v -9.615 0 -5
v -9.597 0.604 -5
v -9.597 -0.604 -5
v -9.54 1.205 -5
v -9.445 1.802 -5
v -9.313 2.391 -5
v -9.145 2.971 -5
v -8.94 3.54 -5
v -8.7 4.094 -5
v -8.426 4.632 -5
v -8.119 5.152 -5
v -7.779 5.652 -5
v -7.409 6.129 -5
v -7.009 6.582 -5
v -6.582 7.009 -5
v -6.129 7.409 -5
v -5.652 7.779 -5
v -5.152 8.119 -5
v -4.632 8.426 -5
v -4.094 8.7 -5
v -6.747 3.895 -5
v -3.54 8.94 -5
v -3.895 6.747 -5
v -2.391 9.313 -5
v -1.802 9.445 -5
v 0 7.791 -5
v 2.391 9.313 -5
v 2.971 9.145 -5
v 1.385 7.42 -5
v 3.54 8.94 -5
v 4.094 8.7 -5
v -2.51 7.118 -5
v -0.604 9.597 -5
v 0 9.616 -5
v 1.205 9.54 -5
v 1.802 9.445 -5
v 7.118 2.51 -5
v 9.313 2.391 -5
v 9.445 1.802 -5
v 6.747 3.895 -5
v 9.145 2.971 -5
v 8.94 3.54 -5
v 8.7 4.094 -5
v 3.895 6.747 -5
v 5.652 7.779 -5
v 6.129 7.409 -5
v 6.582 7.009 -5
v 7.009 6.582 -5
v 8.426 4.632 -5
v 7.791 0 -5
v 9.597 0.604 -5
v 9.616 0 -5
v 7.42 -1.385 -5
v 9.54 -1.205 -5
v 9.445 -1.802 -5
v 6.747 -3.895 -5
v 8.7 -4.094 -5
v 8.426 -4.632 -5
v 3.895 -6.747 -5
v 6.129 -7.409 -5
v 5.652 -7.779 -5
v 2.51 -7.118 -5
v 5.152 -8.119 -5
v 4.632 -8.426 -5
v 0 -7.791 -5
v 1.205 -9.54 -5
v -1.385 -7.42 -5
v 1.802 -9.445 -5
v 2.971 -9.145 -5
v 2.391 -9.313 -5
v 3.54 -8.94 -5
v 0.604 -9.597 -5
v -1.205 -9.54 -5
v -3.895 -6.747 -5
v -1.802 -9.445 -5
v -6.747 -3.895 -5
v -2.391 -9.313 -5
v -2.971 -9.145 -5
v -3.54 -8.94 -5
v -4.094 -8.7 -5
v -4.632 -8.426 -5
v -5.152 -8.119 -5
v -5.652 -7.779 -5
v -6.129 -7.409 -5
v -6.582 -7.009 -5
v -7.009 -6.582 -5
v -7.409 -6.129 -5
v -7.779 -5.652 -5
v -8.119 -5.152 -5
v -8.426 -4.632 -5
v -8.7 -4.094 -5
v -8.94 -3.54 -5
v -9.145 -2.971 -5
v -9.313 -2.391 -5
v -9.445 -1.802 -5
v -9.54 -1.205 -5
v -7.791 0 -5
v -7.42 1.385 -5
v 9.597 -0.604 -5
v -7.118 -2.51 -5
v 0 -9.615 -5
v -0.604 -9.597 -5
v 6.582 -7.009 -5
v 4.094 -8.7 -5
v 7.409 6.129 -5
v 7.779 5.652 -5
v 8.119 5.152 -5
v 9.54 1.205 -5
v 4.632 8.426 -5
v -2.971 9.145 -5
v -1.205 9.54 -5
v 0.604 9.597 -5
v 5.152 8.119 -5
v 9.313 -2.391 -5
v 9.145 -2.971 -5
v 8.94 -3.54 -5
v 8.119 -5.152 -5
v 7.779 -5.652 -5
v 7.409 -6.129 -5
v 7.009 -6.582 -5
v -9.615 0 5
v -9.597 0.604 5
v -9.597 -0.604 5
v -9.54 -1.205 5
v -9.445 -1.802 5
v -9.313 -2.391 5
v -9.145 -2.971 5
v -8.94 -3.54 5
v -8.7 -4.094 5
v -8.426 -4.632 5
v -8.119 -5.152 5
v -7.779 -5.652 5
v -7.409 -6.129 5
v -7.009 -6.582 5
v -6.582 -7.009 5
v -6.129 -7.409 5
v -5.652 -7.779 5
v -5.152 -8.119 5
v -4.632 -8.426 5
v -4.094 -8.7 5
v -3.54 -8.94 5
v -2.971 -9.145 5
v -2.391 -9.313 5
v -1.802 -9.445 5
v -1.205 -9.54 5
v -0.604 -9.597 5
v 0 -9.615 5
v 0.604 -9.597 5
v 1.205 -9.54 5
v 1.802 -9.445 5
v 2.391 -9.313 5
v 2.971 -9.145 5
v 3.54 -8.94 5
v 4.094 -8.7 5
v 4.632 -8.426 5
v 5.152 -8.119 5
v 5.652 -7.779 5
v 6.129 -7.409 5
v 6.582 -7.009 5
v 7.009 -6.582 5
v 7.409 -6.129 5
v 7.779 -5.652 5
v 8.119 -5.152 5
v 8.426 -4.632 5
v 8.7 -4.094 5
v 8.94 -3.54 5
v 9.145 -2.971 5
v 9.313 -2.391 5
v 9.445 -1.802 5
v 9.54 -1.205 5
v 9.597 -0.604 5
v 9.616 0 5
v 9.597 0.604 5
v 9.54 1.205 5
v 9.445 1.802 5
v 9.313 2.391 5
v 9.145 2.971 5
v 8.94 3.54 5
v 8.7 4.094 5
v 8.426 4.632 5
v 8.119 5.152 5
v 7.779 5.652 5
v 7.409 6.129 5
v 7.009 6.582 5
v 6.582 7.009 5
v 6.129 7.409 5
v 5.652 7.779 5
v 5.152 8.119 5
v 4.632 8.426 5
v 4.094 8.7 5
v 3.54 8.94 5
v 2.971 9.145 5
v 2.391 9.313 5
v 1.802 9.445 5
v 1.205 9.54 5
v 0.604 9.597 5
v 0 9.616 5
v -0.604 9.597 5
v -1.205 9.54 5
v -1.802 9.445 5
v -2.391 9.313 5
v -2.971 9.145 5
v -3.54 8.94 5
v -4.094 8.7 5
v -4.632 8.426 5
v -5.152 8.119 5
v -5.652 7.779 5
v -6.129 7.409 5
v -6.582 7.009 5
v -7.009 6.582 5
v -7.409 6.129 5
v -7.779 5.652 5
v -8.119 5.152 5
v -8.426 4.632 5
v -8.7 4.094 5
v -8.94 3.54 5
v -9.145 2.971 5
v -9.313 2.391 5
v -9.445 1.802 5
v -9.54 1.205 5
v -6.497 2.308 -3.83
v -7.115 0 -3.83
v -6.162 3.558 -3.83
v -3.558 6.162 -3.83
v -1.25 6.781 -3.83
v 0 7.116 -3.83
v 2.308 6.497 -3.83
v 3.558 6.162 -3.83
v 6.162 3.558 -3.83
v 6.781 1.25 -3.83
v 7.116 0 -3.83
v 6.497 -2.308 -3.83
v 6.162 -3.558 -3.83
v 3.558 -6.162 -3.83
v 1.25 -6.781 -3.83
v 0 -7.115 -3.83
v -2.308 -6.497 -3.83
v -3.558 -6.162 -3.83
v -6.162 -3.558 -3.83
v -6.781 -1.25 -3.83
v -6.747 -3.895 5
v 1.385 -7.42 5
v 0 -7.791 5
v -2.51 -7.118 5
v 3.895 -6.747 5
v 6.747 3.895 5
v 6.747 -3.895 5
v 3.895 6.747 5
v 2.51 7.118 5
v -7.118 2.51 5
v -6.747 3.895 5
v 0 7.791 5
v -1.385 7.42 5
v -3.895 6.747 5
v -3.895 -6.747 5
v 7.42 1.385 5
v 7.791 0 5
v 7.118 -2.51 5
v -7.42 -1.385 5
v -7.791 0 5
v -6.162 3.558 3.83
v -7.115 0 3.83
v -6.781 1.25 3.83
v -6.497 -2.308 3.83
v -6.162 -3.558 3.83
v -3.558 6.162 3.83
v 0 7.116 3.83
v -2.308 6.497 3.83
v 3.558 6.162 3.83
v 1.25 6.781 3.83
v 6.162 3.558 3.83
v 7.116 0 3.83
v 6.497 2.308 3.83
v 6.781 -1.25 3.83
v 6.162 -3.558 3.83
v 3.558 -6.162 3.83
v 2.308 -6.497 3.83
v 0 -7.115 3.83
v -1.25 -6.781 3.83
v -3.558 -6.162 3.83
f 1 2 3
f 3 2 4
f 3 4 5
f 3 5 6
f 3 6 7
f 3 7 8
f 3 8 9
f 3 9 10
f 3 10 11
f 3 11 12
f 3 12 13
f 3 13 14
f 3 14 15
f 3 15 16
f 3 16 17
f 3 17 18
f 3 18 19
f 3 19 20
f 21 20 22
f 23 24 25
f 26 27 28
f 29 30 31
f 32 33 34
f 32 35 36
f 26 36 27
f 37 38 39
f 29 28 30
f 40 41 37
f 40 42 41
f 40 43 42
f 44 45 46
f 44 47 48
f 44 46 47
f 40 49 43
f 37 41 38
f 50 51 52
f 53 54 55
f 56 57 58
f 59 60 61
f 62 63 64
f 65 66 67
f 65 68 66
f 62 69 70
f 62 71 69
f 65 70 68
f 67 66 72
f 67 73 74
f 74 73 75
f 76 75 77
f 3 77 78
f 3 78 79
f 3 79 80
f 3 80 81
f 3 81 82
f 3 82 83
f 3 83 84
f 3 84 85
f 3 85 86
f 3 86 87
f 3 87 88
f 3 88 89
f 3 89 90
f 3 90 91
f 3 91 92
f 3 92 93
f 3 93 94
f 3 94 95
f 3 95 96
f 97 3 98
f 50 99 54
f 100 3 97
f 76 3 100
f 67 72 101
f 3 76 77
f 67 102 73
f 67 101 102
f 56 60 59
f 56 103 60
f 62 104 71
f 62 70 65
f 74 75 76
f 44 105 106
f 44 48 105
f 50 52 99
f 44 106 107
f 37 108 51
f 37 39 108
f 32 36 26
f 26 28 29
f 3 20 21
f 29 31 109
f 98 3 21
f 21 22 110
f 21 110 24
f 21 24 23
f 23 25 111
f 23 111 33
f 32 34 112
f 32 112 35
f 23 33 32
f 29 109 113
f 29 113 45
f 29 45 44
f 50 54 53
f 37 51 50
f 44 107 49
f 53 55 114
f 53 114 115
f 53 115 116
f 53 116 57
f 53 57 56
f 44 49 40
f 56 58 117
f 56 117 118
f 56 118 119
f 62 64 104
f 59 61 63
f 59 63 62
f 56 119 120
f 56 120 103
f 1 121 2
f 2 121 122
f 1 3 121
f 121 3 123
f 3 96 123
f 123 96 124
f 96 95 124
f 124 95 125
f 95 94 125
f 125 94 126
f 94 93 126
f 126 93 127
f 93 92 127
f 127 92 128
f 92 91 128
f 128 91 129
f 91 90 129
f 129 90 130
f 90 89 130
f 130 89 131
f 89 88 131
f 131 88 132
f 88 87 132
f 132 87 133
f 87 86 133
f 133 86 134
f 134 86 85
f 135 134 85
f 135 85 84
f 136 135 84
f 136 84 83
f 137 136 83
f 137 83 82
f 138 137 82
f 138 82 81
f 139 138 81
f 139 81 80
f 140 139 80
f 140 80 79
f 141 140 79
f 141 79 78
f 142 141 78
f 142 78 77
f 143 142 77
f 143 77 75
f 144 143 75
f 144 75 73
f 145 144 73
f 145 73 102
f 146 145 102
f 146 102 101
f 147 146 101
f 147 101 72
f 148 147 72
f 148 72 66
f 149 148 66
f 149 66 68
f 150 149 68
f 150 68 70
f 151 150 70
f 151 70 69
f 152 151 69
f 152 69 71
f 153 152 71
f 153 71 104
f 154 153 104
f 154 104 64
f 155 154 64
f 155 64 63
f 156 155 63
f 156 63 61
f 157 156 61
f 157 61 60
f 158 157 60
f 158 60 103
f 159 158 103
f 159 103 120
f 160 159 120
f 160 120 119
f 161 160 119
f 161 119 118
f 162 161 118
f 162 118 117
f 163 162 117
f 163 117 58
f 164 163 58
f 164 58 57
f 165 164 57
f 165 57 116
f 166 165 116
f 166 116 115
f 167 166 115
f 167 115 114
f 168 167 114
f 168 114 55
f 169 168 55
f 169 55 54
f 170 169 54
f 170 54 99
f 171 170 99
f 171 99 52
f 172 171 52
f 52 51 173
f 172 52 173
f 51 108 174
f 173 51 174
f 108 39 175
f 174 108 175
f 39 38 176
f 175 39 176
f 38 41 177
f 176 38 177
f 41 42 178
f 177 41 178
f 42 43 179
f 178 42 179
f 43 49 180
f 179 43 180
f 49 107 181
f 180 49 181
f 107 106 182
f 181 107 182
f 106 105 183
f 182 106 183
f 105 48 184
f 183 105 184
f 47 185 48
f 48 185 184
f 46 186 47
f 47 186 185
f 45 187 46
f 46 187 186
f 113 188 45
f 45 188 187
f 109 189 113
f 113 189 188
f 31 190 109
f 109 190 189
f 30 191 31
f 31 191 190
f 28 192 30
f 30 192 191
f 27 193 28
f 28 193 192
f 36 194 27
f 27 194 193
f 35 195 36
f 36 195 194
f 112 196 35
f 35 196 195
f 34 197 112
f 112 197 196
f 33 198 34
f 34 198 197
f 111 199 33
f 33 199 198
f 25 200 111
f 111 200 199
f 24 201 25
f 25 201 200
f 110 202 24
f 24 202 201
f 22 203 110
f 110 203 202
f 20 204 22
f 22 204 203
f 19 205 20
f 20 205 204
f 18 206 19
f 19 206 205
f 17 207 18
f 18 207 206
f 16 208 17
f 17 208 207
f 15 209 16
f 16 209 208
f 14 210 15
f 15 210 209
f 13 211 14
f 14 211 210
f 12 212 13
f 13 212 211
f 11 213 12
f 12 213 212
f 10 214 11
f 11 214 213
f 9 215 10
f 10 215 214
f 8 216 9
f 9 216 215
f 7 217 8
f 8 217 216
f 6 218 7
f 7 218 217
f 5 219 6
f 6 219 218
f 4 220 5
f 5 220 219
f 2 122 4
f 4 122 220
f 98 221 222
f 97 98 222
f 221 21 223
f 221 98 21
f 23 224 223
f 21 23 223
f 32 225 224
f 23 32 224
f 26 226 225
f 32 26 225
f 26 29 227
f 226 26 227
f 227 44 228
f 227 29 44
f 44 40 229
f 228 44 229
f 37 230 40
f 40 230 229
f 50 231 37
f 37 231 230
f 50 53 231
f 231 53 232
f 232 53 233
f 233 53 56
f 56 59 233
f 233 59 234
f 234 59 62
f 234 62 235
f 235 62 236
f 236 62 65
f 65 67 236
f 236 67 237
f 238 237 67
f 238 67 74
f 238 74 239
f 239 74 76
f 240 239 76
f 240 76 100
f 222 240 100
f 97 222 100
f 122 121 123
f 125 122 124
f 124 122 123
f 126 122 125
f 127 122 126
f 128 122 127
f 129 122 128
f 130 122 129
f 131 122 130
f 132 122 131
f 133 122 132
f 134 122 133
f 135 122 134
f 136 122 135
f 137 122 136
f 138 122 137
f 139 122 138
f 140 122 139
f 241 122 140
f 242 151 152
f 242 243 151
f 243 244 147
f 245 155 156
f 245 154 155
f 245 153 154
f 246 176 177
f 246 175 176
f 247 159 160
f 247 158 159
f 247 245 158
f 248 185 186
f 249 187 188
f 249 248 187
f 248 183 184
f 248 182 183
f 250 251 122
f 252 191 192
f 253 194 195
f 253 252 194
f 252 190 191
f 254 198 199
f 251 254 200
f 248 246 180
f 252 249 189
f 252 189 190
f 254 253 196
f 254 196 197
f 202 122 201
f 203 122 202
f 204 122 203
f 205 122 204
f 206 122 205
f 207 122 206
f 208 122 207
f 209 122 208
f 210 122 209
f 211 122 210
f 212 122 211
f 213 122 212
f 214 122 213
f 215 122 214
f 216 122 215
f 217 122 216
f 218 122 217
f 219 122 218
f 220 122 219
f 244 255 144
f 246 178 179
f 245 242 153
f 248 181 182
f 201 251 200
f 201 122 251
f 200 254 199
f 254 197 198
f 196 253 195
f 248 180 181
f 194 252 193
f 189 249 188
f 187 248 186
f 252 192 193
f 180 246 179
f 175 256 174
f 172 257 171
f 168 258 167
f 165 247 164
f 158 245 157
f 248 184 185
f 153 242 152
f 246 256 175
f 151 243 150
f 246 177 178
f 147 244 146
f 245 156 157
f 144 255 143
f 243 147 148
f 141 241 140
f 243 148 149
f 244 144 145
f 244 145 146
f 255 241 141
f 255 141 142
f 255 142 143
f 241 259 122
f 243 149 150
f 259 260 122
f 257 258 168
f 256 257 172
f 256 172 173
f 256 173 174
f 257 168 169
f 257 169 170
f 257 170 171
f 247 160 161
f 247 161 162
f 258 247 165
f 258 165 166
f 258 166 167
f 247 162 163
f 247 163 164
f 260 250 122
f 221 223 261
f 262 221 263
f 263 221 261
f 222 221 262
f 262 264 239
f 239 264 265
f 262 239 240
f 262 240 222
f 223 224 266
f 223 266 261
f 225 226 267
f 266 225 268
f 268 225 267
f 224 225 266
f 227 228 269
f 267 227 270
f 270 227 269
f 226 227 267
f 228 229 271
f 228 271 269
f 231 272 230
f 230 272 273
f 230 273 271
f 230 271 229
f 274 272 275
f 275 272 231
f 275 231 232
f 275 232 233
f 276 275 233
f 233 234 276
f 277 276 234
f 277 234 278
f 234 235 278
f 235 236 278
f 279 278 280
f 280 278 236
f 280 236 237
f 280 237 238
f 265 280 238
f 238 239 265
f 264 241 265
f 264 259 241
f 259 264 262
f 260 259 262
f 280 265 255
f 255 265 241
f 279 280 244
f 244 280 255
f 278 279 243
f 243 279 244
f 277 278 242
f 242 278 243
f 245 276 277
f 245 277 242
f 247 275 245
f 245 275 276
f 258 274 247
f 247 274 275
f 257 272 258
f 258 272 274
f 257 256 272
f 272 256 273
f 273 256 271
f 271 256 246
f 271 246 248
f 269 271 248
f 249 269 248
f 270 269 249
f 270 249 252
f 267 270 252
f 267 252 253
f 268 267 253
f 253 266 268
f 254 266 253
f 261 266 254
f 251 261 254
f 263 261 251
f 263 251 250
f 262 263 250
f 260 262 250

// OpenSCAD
rod_diam = 13.3 * 1.07; // 1.07 == anti shrinkage
bearing_length = 10;

difference() {
  cylinder(r=(rod_diam/2) + 2.5, h=bearing_length, center=true, $fn=100);
  cylinder(r=rod_diam/2, h=bearing_length+1, center=true,         $fn=12);
  translate([0,0, bearing_length/2 + (rod_diam/2) -3]) sphere(r=rod_diam/2 + 2, $fn=12);
  translate([0,0,-bearing_length/2 - (rod_diam/2) +3]) sphere(r=rod_diam/2 + 2, $fn=12);
}
